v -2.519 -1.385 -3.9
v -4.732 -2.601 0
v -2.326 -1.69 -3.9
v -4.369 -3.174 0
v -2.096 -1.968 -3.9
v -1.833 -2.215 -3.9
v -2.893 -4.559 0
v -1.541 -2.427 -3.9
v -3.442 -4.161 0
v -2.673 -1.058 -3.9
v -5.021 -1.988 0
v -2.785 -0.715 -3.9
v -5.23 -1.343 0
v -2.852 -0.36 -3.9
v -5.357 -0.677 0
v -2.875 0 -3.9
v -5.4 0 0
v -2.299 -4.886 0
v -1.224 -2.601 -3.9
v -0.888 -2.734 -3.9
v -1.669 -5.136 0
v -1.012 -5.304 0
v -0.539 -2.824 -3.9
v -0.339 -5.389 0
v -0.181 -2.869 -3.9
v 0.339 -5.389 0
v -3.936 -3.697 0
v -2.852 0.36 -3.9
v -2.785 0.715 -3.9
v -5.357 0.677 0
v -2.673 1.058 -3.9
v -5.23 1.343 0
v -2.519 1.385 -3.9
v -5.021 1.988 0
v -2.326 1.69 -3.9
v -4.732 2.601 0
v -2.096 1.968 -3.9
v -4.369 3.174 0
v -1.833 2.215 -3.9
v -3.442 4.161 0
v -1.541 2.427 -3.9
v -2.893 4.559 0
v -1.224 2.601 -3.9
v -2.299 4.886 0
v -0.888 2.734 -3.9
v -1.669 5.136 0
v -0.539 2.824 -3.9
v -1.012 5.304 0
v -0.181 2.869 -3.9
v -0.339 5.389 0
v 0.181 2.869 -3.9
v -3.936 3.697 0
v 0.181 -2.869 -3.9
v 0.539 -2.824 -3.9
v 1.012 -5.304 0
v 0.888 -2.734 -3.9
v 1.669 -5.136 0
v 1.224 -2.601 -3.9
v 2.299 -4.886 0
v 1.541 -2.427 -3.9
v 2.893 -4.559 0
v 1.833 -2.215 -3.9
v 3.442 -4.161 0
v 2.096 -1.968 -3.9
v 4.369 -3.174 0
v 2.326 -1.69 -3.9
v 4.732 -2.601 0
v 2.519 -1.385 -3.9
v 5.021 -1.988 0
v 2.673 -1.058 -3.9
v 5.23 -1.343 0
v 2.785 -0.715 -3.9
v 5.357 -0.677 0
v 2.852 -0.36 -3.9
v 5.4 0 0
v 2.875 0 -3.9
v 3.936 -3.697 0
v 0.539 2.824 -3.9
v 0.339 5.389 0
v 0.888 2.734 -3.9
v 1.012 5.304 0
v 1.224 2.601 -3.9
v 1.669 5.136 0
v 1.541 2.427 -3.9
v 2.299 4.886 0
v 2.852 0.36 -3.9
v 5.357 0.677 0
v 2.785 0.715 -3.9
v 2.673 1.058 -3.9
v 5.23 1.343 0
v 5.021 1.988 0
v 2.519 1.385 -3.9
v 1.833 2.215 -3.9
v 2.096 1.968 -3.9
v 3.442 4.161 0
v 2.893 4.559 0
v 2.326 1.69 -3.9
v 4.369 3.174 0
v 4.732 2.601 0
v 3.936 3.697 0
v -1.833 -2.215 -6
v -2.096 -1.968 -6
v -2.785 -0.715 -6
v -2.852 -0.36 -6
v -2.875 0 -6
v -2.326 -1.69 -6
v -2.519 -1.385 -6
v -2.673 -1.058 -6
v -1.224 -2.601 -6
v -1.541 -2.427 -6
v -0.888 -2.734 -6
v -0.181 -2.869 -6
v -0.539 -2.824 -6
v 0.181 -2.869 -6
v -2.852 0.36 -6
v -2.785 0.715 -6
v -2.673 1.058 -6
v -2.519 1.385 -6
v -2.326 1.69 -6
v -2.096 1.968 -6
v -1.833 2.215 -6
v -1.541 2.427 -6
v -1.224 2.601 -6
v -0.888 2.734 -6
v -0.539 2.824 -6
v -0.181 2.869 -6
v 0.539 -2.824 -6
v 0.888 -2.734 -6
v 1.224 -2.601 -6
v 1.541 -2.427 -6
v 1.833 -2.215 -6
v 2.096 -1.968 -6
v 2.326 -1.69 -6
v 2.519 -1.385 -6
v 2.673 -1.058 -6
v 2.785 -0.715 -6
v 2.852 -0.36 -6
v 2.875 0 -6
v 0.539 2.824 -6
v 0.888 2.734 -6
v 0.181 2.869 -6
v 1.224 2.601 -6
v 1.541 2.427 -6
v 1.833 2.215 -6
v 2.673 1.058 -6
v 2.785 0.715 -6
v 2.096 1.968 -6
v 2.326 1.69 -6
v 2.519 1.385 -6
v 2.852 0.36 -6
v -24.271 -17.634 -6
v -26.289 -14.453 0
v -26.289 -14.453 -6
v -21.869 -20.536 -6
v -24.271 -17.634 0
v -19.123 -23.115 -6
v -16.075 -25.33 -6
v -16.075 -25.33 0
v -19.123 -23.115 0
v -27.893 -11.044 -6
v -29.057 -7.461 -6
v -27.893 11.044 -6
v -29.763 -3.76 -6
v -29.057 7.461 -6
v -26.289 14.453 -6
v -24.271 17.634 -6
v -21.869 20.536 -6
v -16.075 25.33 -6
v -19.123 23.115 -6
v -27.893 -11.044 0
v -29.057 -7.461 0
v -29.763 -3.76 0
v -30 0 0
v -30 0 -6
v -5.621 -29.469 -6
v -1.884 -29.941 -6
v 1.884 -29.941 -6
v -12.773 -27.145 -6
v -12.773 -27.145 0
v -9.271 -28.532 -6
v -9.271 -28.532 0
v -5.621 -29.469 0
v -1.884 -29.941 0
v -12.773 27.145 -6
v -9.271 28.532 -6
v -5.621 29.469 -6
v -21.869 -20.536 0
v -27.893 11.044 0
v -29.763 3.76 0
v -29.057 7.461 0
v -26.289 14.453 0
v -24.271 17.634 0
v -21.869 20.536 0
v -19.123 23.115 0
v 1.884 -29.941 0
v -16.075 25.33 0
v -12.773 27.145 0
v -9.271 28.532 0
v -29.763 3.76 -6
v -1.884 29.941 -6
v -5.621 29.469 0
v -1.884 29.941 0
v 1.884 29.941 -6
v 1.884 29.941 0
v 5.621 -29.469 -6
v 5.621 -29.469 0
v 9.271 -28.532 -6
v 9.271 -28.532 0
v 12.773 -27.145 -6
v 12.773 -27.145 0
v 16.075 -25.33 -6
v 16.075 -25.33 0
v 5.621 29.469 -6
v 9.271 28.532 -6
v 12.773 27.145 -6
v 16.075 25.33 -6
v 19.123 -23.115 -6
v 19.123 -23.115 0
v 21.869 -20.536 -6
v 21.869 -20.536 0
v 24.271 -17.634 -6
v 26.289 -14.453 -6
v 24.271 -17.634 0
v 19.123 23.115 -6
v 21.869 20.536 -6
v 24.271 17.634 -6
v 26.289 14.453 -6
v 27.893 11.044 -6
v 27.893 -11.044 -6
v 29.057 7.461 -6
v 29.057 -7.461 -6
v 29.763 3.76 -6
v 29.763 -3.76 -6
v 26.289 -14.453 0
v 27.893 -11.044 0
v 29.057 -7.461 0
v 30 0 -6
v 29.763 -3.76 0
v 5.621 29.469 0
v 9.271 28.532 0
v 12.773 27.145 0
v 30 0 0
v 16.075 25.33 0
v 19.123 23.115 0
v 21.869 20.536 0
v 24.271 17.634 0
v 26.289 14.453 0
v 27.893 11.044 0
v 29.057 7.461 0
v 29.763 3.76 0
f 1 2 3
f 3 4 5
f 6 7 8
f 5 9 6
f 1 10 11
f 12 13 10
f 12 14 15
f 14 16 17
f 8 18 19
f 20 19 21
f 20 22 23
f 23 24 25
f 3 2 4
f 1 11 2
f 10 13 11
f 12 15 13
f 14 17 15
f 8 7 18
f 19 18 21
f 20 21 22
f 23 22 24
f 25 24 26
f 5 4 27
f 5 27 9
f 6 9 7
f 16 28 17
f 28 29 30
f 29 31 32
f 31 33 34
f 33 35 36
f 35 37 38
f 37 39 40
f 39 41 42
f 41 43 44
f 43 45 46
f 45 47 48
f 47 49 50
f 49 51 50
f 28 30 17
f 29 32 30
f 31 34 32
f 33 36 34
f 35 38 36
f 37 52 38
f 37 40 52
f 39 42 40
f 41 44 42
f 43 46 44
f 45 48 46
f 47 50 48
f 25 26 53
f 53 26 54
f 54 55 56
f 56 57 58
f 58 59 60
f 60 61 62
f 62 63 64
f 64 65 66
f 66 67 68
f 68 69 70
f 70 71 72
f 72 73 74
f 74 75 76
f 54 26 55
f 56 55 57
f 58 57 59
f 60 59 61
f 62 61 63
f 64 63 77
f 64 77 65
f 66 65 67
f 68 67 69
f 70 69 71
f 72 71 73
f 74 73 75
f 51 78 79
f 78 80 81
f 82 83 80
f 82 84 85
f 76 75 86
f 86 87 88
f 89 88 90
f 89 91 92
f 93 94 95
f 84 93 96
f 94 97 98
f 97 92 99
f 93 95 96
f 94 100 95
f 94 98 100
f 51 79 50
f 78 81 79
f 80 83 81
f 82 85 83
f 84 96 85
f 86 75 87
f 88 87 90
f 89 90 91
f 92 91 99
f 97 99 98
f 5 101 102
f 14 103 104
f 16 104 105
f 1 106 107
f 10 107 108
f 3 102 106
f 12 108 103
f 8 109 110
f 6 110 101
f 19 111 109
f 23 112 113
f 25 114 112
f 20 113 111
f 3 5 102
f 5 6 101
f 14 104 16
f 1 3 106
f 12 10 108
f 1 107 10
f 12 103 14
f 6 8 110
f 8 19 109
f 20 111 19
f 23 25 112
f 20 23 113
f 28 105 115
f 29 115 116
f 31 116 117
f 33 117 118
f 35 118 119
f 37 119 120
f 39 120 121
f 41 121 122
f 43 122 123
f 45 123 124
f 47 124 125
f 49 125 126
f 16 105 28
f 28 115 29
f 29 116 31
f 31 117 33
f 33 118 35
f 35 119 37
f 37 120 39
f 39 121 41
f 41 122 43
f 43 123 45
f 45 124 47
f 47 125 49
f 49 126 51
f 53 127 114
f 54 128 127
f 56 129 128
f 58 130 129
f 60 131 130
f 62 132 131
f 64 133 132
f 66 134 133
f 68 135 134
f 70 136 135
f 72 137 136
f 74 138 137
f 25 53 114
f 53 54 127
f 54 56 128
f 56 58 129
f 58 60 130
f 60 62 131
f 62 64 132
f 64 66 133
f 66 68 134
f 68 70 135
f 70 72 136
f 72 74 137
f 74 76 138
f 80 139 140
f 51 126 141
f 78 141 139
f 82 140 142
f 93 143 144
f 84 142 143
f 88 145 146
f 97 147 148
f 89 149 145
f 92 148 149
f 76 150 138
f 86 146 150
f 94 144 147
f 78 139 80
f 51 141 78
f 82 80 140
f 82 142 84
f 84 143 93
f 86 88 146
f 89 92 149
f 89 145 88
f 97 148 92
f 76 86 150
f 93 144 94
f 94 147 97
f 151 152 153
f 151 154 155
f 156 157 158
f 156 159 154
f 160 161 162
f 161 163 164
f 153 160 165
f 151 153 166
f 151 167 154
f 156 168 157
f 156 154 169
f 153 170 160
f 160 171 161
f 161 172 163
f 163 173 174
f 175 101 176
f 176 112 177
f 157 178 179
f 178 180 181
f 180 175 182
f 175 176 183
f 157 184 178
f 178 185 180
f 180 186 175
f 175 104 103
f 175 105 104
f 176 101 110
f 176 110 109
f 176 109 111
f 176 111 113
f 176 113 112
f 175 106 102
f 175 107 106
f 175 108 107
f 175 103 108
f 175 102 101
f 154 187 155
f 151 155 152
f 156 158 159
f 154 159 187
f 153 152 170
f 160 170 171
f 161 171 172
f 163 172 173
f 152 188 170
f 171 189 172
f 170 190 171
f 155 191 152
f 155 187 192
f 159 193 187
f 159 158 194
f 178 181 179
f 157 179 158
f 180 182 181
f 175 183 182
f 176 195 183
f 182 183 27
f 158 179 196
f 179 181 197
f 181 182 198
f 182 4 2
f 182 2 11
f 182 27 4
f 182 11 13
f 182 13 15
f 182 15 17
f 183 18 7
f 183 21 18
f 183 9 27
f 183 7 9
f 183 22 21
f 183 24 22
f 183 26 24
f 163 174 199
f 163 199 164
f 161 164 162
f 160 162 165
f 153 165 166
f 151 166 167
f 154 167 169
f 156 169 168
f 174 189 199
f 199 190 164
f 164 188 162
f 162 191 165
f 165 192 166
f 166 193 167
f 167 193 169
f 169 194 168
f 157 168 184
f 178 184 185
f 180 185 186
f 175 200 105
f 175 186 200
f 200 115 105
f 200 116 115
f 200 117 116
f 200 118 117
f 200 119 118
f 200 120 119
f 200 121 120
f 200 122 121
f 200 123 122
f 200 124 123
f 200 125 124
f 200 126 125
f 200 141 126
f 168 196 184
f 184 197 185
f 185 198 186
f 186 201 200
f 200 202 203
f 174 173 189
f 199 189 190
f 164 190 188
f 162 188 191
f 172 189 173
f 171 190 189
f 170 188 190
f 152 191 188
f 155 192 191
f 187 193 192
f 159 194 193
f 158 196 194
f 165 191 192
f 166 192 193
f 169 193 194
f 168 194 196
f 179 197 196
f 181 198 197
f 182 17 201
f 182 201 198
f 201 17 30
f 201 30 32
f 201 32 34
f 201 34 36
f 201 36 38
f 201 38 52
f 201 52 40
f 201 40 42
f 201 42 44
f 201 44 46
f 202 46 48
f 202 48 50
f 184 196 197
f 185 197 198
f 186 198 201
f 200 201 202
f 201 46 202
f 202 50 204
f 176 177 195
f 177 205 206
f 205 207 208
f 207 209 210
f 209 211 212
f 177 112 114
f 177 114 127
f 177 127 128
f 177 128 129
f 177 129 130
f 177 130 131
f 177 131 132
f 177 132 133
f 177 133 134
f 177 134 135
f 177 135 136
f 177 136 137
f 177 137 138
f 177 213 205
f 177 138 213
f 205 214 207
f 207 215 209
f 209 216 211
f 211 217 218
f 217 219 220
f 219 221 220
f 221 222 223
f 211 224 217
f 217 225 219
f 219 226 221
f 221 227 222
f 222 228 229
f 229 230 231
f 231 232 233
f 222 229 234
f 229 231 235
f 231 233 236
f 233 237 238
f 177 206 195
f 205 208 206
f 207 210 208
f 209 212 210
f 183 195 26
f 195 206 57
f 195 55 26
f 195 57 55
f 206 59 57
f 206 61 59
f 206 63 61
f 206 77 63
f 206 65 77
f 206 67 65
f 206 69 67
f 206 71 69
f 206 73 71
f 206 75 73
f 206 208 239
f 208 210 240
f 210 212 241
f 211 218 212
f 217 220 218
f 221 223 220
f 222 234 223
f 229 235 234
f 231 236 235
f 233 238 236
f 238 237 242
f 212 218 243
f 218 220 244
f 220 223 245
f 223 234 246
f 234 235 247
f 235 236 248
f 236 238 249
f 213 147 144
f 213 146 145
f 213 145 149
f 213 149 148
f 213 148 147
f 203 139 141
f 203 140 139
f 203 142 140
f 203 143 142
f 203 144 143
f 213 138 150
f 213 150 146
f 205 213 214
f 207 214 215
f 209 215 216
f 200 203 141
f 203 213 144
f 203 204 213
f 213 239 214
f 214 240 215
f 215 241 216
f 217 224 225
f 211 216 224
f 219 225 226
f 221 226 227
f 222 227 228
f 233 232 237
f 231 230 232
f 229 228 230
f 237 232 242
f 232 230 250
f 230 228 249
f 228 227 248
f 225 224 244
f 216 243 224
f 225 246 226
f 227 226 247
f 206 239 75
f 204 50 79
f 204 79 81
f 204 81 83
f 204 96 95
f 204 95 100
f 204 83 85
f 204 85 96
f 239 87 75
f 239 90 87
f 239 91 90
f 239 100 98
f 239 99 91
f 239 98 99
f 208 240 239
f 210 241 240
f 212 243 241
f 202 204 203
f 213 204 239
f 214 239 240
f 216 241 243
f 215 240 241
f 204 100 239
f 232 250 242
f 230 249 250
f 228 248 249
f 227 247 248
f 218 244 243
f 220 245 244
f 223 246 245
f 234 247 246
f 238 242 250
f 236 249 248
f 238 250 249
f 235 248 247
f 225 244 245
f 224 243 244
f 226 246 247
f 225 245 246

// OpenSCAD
$fn = 50;


difference() {
	union() {
		translate(v = [0, 0, -6.0000000000]) {
			cylinder(h = 6, r = 30.0000000000);
		}
	}
	union() {
		translate(v = [0, 0, 0]) {
			rotate(a = [0, 0, 0]) {
				difference() {
					union() {
						translate(v = [0, 0, -9.0000000000]) {
							cylinder(h = 9, r = 2.6000000000);
						}
						translate(v = [0, 0, -3.9000000000]) {
							cylinder(h = 3.9000000000, r1 = 2.8750000000, r2 = 5.4000000000);
						}
						translate(v = [0, 0, -9.0000000000]) {
							cylinder(h = 9, r = 2.8750000000);
						}
						translate(v = [0, 0, -9.0000000000]) {
							cylinder(h = 9, r = 2.6000000000);
						}
					}
					union();
				}
			}
		}
	}
}
